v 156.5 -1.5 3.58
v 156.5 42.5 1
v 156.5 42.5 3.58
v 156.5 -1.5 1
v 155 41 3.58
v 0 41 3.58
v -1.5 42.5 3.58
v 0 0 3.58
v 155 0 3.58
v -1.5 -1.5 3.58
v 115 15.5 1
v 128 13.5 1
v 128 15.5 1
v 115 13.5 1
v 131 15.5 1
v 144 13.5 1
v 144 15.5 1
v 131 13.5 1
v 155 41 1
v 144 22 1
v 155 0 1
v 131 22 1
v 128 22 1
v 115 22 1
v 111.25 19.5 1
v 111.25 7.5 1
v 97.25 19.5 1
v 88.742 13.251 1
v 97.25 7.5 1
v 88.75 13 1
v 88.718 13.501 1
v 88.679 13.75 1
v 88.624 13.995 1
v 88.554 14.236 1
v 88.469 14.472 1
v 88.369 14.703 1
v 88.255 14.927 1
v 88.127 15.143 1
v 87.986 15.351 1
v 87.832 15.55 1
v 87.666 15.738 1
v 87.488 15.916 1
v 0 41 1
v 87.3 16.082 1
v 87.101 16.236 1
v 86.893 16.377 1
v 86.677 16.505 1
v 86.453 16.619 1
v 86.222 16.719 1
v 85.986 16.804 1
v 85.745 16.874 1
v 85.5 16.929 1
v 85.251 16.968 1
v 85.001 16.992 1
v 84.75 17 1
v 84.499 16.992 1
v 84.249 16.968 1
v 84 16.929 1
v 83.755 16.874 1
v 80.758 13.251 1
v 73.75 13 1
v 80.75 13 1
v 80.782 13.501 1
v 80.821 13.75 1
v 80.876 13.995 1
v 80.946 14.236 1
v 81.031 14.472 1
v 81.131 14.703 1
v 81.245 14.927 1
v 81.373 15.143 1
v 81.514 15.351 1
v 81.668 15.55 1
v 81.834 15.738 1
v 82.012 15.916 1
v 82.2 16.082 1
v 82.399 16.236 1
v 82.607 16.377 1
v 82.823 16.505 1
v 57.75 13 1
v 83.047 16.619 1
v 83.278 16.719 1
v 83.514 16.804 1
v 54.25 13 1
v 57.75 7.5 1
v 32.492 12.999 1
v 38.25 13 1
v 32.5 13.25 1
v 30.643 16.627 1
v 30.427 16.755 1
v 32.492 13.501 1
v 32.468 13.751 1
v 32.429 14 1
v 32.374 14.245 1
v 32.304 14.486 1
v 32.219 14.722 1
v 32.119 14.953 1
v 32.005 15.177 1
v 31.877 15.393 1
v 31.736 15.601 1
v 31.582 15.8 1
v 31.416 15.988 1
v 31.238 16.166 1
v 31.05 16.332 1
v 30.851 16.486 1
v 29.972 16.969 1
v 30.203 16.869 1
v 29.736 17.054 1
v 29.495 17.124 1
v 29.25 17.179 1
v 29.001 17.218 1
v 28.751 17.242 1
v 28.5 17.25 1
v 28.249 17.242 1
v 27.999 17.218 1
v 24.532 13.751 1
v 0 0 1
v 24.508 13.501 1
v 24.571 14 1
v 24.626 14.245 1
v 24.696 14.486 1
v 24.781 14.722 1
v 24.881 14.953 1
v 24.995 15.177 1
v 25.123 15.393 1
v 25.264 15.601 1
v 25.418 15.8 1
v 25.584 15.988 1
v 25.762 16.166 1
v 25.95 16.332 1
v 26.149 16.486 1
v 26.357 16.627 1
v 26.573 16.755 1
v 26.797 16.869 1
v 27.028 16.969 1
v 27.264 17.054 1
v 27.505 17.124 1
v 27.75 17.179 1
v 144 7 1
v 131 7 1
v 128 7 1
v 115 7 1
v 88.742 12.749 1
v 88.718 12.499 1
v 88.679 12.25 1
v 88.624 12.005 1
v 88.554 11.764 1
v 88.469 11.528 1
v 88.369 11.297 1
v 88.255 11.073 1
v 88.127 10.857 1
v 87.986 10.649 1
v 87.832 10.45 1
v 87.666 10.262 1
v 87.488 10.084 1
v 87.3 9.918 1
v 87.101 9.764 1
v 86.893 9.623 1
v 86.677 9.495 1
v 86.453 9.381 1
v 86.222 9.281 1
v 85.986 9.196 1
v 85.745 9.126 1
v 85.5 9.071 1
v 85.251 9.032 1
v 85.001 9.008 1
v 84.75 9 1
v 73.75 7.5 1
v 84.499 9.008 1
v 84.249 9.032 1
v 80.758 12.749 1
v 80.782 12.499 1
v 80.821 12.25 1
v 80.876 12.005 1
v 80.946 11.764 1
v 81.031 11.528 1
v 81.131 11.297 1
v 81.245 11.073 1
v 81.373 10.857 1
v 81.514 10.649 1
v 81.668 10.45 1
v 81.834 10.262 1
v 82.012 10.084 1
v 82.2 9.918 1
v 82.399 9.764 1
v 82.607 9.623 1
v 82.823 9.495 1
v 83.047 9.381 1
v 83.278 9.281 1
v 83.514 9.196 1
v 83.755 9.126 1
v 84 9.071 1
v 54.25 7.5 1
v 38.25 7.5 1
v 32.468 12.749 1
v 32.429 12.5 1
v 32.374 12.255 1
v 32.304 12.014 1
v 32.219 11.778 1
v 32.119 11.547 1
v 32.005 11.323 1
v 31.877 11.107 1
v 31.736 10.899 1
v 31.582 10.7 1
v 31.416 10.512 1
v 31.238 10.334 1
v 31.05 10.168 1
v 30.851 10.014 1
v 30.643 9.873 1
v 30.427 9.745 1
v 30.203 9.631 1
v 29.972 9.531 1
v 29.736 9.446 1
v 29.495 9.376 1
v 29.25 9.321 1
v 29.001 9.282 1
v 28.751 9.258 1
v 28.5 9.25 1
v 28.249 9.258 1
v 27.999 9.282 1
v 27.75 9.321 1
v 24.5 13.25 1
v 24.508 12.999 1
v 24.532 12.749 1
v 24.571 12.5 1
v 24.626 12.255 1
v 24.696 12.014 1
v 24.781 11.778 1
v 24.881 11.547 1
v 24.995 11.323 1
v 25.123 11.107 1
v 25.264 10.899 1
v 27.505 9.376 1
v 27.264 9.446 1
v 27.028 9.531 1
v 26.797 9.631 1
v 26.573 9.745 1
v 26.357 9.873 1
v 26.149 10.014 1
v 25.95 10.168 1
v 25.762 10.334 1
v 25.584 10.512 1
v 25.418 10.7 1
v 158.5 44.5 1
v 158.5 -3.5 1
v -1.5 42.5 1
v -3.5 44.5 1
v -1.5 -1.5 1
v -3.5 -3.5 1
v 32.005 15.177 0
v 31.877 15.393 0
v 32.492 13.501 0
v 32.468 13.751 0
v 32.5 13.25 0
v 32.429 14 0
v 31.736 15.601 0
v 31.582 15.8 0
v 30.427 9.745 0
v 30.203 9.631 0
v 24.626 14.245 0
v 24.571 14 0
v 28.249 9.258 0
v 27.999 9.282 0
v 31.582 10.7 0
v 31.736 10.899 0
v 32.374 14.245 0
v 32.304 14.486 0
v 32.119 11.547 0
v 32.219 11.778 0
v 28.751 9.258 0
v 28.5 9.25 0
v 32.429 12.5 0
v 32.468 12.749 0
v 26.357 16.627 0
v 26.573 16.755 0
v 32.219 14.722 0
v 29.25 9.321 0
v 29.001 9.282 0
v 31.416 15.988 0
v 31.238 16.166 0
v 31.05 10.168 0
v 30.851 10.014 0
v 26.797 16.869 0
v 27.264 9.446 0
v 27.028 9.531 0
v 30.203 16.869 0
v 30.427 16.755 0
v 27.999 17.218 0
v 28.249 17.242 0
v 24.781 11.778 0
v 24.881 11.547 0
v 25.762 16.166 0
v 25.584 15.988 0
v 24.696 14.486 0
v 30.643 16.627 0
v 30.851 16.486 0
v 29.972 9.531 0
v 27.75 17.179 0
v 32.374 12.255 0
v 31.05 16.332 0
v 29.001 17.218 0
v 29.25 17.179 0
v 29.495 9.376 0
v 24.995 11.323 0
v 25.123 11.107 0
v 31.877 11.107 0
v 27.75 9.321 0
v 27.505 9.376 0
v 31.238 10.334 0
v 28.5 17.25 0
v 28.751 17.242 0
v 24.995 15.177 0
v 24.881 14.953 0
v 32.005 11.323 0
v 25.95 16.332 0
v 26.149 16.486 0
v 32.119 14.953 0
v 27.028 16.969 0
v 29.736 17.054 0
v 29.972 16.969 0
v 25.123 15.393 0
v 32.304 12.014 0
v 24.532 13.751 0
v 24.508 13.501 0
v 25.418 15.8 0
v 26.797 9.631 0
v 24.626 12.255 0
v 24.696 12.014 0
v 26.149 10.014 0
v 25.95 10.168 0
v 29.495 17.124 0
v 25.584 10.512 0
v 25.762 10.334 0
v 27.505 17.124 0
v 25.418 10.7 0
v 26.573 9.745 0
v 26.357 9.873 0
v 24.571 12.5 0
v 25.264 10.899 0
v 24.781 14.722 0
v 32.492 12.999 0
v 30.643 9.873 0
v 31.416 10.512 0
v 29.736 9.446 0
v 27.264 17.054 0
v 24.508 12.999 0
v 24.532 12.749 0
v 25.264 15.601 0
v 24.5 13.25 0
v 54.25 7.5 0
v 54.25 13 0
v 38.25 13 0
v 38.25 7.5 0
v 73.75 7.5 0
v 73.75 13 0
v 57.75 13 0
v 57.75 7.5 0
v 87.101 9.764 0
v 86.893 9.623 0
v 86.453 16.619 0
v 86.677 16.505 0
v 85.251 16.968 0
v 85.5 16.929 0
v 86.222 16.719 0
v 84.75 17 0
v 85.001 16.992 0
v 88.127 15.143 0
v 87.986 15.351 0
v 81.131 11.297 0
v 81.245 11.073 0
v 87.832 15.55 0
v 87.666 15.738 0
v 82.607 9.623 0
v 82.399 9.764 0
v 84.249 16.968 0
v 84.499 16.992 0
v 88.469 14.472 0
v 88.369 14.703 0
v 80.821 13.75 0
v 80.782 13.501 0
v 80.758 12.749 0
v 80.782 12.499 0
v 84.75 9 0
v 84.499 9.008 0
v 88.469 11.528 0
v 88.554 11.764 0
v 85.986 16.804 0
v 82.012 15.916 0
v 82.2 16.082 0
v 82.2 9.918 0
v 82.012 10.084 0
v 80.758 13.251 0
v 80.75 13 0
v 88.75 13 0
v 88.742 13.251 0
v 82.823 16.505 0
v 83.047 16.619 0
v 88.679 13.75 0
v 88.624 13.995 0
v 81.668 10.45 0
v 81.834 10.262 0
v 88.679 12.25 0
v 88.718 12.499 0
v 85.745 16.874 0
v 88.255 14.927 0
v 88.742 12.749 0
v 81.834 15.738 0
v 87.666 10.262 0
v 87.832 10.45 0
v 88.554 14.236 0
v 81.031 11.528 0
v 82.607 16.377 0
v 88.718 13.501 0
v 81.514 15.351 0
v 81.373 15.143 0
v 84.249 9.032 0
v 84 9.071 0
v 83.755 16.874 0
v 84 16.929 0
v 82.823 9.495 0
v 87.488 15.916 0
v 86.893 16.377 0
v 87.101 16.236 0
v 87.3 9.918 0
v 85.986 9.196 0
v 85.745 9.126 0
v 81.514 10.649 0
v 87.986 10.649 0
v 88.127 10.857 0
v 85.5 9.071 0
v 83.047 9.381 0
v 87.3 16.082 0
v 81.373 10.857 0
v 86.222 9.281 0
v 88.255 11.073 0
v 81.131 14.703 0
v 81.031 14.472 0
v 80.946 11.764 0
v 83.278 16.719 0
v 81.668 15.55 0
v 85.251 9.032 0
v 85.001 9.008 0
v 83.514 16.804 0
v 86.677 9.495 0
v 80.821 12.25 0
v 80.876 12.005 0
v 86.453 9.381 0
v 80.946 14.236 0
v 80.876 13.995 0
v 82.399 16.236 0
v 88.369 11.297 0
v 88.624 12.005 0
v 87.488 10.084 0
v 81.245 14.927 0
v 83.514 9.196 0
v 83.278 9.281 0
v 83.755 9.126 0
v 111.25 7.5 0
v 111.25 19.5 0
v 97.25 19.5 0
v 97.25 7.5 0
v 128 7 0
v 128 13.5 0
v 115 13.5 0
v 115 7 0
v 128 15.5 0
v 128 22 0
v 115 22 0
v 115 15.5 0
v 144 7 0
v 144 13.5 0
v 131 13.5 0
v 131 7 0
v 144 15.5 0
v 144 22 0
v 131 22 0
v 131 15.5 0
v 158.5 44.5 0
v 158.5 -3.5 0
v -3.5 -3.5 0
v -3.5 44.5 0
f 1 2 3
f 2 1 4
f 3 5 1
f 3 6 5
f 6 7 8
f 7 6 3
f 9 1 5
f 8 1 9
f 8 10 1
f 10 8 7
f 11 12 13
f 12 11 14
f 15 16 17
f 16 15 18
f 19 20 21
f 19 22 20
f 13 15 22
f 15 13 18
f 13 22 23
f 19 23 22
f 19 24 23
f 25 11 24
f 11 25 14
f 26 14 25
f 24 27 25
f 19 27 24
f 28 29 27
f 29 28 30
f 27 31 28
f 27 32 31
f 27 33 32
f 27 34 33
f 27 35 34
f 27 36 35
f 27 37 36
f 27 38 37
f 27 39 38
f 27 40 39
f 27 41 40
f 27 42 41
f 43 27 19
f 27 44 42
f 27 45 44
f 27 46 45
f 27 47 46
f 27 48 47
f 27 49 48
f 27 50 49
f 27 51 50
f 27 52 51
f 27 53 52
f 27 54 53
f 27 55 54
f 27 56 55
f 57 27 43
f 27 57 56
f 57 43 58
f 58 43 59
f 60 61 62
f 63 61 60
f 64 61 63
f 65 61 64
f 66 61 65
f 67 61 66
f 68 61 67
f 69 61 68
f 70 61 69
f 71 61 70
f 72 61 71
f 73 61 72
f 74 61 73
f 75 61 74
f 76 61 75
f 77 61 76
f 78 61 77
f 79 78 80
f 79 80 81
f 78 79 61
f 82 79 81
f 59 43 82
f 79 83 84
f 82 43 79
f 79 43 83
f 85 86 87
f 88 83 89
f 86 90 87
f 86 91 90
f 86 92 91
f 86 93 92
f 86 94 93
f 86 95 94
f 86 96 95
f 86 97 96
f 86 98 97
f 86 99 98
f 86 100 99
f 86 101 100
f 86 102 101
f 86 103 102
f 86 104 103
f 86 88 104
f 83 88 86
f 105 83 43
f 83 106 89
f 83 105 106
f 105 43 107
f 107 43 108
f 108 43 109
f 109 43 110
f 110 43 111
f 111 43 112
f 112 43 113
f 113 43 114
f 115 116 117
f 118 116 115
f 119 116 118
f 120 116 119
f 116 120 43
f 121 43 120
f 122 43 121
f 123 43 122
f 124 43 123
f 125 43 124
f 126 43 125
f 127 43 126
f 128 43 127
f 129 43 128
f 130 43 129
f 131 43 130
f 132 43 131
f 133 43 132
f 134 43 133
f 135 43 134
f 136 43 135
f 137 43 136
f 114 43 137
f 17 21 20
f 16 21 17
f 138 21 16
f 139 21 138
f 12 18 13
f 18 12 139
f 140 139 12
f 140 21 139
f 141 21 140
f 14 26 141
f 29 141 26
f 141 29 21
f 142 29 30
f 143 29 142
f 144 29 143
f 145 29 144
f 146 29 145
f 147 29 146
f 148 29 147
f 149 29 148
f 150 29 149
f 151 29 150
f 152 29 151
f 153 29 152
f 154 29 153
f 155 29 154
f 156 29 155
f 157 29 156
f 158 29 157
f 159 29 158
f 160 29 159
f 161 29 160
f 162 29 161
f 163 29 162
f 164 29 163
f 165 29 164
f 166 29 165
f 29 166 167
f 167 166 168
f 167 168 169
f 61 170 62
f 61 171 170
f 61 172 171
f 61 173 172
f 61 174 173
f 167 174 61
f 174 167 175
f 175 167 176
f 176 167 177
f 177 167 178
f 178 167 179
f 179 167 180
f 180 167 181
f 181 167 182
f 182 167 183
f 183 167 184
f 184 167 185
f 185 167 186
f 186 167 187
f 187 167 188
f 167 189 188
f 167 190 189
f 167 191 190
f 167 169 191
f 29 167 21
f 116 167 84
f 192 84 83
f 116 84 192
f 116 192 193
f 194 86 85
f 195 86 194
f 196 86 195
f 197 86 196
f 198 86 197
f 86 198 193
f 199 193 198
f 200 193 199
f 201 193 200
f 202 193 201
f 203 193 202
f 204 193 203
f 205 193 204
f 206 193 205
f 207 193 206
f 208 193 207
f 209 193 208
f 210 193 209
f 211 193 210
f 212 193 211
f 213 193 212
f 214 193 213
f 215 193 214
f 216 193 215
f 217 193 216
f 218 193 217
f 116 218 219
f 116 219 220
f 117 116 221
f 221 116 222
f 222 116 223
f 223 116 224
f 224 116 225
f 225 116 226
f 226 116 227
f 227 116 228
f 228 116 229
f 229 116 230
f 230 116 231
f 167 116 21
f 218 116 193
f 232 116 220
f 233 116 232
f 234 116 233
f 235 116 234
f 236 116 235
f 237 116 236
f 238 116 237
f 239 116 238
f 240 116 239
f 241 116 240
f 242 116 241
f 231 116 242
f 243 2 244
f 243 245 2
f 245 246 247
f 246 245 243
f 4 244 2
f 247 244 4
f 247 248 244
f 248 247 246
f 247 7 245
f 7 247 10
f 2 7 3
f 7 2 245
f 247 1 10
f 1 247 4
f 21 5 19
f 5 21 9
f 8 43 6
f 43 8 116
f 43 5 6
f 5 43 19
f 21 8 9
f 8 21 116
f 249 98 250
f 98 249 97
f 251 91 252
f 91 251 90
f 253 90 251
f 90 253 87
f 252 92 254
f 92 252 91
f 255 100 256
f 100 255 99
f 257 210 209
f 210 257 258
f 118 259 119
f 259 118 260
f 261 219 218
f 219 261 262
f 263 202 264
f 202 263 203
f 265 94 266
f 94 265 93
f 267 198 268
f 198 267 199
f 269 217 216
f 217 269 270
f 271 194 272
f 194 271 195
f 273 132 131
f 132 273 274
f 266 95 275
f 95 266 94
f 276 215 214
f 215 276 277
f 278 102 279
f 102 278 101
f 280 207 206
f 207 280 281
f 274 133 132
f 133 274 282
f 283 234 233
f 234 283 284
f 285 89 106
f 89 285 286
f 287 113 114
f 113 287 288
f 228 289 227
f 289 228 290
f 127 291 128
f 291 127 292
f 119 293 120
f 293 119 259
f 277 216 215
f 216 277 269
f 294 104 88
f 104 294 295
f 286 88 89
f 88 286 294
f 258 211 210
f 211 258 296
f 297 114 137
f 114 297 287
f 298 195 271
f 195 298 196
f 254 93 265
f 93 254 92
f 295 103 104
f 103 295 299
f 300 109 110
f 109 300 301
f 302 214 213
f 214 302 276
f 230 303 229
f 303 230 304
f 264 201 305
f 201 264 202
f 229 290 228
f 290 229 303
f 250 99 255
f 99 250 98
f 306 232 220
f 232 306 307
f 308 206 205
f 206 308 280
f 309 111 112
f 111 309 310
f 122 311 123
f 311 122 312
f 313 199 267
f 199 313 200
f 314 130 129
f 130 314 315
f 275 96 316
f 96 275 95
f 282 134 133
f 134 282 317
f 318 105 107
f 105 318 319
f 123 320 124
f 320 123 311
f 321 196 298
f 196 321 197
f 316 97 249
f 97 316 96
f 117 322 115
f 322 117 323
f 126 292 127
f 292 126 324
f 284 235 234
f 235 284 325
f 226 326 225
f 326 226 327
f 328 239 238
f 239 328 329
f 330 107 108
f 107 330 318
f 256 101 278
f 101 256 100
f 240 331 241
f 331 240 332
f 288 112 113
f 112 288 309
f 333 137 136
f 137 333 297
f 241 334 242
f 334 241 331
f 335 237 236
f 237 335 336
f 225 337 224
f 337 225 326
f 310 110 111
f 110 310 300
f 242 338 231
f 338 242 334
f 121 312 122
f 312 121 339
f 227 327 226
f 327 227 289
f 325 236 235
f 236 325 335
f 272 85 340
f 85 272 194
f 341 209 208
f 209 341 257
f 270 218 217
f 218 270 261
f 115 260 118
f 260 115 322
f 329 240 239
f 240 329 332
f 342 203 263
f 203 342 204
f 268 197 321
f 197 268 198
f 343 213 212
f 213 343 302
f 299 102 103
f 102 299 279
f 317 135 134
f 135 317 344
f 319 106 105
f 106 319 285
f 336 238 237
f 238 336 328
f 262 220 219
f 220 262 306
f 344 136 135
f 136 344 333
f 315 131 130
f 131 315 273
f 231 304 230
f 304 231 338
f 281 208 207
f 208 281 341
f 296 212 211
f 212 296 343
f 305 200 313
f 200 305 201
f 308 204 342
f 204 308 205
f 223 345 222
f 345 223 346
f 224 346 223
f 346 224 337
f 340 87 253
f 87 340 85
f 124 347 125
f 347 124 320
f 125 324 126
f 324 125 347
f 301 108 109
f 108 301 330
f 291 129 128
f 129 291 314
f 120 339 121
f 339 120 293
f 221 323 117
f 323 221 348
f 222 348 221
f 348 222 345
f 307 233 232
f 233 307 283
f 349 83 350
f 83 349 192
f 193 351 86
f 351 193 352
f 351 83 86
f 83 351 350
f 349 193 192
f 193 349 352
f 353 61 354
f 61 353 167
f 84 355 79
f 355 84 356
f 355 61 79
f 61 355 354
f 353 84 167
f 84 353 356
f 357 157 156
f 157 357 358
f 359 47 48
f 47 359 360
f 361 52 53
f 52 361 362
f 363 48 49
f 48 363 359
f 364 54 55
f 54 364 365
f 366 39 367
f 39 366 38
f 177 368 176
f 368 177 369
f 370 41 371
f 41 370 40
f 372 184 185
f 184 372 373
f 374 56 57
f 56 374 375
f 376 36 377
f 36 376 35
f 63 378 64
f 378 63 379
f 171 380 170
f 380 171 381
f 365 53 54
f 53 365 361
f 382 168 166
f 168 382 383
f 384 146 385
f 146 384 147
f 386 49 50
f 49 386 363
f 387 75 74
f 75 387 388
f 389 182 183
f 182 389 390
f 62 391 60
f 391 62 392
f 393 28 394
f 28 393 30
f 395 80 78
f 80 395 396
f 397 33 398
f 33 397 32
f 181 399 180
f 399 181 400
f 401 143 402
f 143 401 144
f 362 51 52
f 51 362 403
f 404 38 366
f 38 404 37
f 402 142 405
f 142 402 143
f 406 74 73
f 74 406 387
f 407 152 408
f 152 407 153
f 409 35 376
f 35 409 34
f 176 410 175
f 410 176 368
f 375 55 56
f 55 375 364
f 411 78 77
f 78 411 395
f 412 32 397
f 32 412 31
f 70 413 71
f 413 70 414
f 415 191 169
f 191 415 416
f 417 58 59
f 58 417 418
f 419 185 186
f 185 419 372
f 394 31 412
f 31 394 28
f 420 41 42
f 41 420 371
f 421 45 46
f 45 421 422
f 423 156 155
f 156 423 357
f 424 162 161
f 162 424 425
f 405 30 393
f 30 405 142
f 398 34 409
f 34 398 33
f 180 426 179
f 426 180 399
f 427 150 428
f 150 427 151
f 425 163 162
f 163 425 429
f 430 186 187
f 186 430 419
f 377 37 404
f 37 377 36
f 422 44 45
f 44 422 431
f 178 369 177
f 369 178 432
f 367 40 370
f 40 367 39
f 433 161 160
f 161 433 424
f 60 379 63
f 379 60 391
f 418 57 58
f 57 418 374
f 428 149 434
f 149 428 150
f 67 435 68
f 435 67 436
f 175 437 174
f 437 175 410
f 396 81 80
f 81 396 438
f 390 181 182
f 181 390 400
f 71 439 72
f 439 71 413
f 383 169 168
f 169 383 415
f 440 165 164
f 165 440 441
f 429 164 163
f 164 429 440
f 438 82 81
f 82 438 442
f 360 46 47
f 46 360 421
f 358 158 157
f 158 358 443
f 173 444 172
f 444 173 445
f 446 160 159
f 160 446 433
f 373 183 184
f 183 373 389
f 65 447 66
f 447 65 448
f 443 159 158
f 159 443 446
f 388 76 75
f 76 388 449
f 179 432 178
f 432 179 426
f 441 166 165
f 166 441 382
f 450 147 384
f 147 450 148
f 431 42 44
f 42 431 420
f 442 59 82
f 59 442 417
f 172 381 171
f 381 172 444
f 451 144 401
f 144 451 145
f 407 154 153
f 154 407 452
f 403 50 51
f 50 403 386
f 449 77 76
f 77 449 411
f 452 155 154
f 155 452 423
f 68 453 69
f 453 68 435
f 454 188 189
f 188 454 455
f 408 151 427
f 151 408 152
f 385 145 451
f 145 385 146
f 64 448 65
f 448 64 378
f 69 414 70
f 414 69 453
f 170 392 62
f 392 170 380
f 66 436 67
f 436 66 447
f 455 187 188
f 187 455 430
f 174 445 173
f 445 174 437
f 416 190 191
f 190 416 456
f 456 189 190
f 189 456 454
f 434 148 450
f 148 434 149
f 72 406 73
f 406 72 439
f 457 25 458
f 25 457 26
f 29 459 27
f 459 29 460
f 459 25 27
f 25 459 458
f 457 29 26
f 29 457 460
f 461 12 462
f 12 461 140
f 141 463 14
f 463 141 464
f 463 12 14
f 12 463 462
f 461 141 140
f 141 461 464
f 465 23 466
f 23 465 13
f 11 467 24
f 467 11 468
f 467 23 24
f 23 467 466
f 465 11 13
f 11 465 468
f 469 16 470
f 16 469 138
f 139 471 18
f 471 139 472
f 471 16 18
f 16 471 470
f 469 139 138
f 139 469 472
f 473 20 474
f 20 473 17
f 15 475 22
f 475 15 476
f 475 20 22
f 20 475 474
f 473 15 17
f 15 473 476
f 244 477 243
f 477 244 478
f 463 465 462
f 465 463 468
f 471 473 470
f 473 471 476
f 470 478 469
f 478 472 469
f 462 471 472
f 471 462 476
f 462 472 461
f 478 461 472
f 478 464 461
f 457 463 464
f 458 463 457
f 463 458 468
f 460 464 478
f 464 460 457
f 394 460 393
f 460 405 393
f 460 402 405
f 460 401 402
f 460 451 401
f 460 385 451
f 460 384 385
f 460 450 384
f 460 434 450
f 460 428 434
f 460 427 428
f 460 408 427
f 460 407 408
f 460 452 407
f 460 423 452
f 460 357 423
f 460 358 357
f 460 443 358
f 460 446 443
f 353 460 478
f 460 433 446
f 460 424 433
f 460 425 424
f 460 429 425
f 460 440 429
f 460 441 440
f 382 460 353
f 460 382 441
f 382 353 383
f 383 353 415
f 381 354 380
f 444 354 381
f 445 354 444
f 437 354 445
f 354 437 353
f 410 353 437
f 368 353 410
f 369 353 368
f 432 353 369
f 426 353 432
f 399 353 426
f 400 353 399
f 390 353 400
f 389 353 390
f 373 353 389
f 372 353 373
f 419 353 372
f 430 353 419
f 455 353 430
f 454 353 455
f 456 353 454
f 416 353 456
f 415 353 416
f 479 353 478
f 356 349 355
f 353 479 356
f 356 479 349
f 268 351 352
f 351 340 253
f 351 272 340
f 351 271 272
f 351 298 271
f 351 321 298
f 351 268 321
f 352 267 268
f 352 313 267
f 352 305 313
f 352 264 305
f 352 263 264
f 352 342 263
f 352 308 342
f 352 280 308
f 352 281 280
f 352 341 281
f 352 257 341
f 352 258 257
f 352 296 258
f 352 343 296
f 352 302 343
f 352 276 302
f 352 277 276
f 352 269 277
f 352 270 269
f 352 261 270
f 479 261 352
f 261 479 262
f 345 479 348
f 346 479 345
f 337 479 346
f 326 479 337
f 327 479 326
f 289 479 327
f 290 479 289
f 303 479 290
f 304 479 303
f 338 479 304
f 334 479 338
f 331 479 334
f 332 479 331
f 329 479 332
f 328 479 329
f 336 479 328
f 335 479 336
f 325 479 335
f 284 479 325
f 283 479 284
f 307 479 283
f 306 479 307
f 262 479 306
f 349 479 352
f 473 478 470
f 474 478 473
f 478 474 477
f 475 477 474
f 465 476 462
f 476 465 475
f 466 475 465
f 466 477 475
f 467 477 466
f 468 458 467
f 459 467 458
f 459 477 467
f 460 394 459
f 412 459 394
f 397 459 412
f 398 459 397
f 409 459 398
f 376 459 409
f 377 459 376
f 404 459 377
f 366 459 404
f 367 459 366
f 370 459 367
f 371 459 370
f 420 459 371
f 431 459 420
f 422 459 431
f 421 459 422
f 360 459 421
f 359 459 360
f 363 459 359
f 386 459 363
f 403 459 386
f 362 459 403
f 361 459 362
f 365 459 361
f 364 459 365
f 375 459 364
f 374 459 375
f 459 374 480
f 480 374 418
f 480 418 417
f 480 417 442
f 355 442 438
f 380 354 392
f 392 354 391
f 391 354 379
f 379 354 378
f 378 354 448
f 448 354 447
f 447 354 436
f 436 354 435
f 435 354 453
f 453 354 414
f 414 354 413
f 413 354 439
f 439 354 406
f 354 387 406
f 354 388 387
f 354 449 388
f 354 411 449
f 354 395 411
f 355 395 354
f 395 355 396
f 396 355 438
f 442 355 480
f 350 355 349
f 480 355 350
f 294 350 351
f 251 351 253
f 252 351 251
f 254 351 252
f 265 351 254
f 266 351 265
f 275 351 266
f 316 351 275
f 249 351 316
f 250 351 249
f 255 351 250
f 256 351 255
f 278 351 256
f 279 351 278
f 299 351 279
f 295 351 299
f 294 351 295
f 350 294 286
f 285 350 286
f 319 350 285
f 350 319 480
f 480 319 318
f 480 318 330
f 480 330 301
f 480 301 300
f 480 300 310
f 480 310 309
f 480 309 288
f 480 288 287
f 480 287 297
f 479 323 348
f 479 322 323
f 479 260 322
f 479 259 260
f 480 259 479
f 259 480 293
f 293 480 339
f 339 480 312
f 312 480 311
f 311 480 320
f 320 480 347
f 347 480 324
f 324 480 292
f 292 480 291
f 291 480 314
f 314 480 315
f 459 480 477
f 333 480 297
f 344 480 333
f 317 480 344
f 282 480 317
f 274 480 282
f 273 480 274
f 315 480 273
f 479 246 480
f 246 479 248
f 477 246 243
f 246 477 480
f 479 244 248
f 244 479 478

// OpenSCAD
// I/O shield for Fujitsu Futro S740 on custom ITX adapter.
// You need to simple adjust the alignment for your own setup.

// based on blank_v01
translate([-3.5, -3.5, 0]) union() {
    
    // border
    translate([2, 2, 1]){
        difference() {
            cube([158, 44, 2.58]);
            translate([1.5, 1.5, -0.01]) cube([155, 41, 2.60]);
        }
    }
    
    // backplate
    difference() {
        cube([162, 48, 1]);
        
        translate([3.5, 3.5, -1]) {

            // 75
            translate([28.5, 13.25, 0]) cylinder(3, 4, 4, $fn=100);

            // dp
            translate([38.25, 7.5, 0]) cube([16, 5.5, 3]);

            // dp
            translate([57.75, 7.5, 0]) cube([16, 5.5, 3]);

            // 35
            translate([84.75, 13, 0]) cylinder(3, 4, 4, $fn=100);

            // rj45
            translate([97.25, 7.5, 0]) cube([14, 12, 3]);

            // usb - usb
            translate([115, 7, 0]) cube([13, 6.5, 3]);
            translate([115, 15.5, 0]) cube([13, 6.5, 3]);

            // usb - usb
            translate([131, 7, 0]) cube([13, 6.5, 3]);
            translate([131, 15.5, 0]) cube([13, 6.5, 3]);
        }
    }   
}
